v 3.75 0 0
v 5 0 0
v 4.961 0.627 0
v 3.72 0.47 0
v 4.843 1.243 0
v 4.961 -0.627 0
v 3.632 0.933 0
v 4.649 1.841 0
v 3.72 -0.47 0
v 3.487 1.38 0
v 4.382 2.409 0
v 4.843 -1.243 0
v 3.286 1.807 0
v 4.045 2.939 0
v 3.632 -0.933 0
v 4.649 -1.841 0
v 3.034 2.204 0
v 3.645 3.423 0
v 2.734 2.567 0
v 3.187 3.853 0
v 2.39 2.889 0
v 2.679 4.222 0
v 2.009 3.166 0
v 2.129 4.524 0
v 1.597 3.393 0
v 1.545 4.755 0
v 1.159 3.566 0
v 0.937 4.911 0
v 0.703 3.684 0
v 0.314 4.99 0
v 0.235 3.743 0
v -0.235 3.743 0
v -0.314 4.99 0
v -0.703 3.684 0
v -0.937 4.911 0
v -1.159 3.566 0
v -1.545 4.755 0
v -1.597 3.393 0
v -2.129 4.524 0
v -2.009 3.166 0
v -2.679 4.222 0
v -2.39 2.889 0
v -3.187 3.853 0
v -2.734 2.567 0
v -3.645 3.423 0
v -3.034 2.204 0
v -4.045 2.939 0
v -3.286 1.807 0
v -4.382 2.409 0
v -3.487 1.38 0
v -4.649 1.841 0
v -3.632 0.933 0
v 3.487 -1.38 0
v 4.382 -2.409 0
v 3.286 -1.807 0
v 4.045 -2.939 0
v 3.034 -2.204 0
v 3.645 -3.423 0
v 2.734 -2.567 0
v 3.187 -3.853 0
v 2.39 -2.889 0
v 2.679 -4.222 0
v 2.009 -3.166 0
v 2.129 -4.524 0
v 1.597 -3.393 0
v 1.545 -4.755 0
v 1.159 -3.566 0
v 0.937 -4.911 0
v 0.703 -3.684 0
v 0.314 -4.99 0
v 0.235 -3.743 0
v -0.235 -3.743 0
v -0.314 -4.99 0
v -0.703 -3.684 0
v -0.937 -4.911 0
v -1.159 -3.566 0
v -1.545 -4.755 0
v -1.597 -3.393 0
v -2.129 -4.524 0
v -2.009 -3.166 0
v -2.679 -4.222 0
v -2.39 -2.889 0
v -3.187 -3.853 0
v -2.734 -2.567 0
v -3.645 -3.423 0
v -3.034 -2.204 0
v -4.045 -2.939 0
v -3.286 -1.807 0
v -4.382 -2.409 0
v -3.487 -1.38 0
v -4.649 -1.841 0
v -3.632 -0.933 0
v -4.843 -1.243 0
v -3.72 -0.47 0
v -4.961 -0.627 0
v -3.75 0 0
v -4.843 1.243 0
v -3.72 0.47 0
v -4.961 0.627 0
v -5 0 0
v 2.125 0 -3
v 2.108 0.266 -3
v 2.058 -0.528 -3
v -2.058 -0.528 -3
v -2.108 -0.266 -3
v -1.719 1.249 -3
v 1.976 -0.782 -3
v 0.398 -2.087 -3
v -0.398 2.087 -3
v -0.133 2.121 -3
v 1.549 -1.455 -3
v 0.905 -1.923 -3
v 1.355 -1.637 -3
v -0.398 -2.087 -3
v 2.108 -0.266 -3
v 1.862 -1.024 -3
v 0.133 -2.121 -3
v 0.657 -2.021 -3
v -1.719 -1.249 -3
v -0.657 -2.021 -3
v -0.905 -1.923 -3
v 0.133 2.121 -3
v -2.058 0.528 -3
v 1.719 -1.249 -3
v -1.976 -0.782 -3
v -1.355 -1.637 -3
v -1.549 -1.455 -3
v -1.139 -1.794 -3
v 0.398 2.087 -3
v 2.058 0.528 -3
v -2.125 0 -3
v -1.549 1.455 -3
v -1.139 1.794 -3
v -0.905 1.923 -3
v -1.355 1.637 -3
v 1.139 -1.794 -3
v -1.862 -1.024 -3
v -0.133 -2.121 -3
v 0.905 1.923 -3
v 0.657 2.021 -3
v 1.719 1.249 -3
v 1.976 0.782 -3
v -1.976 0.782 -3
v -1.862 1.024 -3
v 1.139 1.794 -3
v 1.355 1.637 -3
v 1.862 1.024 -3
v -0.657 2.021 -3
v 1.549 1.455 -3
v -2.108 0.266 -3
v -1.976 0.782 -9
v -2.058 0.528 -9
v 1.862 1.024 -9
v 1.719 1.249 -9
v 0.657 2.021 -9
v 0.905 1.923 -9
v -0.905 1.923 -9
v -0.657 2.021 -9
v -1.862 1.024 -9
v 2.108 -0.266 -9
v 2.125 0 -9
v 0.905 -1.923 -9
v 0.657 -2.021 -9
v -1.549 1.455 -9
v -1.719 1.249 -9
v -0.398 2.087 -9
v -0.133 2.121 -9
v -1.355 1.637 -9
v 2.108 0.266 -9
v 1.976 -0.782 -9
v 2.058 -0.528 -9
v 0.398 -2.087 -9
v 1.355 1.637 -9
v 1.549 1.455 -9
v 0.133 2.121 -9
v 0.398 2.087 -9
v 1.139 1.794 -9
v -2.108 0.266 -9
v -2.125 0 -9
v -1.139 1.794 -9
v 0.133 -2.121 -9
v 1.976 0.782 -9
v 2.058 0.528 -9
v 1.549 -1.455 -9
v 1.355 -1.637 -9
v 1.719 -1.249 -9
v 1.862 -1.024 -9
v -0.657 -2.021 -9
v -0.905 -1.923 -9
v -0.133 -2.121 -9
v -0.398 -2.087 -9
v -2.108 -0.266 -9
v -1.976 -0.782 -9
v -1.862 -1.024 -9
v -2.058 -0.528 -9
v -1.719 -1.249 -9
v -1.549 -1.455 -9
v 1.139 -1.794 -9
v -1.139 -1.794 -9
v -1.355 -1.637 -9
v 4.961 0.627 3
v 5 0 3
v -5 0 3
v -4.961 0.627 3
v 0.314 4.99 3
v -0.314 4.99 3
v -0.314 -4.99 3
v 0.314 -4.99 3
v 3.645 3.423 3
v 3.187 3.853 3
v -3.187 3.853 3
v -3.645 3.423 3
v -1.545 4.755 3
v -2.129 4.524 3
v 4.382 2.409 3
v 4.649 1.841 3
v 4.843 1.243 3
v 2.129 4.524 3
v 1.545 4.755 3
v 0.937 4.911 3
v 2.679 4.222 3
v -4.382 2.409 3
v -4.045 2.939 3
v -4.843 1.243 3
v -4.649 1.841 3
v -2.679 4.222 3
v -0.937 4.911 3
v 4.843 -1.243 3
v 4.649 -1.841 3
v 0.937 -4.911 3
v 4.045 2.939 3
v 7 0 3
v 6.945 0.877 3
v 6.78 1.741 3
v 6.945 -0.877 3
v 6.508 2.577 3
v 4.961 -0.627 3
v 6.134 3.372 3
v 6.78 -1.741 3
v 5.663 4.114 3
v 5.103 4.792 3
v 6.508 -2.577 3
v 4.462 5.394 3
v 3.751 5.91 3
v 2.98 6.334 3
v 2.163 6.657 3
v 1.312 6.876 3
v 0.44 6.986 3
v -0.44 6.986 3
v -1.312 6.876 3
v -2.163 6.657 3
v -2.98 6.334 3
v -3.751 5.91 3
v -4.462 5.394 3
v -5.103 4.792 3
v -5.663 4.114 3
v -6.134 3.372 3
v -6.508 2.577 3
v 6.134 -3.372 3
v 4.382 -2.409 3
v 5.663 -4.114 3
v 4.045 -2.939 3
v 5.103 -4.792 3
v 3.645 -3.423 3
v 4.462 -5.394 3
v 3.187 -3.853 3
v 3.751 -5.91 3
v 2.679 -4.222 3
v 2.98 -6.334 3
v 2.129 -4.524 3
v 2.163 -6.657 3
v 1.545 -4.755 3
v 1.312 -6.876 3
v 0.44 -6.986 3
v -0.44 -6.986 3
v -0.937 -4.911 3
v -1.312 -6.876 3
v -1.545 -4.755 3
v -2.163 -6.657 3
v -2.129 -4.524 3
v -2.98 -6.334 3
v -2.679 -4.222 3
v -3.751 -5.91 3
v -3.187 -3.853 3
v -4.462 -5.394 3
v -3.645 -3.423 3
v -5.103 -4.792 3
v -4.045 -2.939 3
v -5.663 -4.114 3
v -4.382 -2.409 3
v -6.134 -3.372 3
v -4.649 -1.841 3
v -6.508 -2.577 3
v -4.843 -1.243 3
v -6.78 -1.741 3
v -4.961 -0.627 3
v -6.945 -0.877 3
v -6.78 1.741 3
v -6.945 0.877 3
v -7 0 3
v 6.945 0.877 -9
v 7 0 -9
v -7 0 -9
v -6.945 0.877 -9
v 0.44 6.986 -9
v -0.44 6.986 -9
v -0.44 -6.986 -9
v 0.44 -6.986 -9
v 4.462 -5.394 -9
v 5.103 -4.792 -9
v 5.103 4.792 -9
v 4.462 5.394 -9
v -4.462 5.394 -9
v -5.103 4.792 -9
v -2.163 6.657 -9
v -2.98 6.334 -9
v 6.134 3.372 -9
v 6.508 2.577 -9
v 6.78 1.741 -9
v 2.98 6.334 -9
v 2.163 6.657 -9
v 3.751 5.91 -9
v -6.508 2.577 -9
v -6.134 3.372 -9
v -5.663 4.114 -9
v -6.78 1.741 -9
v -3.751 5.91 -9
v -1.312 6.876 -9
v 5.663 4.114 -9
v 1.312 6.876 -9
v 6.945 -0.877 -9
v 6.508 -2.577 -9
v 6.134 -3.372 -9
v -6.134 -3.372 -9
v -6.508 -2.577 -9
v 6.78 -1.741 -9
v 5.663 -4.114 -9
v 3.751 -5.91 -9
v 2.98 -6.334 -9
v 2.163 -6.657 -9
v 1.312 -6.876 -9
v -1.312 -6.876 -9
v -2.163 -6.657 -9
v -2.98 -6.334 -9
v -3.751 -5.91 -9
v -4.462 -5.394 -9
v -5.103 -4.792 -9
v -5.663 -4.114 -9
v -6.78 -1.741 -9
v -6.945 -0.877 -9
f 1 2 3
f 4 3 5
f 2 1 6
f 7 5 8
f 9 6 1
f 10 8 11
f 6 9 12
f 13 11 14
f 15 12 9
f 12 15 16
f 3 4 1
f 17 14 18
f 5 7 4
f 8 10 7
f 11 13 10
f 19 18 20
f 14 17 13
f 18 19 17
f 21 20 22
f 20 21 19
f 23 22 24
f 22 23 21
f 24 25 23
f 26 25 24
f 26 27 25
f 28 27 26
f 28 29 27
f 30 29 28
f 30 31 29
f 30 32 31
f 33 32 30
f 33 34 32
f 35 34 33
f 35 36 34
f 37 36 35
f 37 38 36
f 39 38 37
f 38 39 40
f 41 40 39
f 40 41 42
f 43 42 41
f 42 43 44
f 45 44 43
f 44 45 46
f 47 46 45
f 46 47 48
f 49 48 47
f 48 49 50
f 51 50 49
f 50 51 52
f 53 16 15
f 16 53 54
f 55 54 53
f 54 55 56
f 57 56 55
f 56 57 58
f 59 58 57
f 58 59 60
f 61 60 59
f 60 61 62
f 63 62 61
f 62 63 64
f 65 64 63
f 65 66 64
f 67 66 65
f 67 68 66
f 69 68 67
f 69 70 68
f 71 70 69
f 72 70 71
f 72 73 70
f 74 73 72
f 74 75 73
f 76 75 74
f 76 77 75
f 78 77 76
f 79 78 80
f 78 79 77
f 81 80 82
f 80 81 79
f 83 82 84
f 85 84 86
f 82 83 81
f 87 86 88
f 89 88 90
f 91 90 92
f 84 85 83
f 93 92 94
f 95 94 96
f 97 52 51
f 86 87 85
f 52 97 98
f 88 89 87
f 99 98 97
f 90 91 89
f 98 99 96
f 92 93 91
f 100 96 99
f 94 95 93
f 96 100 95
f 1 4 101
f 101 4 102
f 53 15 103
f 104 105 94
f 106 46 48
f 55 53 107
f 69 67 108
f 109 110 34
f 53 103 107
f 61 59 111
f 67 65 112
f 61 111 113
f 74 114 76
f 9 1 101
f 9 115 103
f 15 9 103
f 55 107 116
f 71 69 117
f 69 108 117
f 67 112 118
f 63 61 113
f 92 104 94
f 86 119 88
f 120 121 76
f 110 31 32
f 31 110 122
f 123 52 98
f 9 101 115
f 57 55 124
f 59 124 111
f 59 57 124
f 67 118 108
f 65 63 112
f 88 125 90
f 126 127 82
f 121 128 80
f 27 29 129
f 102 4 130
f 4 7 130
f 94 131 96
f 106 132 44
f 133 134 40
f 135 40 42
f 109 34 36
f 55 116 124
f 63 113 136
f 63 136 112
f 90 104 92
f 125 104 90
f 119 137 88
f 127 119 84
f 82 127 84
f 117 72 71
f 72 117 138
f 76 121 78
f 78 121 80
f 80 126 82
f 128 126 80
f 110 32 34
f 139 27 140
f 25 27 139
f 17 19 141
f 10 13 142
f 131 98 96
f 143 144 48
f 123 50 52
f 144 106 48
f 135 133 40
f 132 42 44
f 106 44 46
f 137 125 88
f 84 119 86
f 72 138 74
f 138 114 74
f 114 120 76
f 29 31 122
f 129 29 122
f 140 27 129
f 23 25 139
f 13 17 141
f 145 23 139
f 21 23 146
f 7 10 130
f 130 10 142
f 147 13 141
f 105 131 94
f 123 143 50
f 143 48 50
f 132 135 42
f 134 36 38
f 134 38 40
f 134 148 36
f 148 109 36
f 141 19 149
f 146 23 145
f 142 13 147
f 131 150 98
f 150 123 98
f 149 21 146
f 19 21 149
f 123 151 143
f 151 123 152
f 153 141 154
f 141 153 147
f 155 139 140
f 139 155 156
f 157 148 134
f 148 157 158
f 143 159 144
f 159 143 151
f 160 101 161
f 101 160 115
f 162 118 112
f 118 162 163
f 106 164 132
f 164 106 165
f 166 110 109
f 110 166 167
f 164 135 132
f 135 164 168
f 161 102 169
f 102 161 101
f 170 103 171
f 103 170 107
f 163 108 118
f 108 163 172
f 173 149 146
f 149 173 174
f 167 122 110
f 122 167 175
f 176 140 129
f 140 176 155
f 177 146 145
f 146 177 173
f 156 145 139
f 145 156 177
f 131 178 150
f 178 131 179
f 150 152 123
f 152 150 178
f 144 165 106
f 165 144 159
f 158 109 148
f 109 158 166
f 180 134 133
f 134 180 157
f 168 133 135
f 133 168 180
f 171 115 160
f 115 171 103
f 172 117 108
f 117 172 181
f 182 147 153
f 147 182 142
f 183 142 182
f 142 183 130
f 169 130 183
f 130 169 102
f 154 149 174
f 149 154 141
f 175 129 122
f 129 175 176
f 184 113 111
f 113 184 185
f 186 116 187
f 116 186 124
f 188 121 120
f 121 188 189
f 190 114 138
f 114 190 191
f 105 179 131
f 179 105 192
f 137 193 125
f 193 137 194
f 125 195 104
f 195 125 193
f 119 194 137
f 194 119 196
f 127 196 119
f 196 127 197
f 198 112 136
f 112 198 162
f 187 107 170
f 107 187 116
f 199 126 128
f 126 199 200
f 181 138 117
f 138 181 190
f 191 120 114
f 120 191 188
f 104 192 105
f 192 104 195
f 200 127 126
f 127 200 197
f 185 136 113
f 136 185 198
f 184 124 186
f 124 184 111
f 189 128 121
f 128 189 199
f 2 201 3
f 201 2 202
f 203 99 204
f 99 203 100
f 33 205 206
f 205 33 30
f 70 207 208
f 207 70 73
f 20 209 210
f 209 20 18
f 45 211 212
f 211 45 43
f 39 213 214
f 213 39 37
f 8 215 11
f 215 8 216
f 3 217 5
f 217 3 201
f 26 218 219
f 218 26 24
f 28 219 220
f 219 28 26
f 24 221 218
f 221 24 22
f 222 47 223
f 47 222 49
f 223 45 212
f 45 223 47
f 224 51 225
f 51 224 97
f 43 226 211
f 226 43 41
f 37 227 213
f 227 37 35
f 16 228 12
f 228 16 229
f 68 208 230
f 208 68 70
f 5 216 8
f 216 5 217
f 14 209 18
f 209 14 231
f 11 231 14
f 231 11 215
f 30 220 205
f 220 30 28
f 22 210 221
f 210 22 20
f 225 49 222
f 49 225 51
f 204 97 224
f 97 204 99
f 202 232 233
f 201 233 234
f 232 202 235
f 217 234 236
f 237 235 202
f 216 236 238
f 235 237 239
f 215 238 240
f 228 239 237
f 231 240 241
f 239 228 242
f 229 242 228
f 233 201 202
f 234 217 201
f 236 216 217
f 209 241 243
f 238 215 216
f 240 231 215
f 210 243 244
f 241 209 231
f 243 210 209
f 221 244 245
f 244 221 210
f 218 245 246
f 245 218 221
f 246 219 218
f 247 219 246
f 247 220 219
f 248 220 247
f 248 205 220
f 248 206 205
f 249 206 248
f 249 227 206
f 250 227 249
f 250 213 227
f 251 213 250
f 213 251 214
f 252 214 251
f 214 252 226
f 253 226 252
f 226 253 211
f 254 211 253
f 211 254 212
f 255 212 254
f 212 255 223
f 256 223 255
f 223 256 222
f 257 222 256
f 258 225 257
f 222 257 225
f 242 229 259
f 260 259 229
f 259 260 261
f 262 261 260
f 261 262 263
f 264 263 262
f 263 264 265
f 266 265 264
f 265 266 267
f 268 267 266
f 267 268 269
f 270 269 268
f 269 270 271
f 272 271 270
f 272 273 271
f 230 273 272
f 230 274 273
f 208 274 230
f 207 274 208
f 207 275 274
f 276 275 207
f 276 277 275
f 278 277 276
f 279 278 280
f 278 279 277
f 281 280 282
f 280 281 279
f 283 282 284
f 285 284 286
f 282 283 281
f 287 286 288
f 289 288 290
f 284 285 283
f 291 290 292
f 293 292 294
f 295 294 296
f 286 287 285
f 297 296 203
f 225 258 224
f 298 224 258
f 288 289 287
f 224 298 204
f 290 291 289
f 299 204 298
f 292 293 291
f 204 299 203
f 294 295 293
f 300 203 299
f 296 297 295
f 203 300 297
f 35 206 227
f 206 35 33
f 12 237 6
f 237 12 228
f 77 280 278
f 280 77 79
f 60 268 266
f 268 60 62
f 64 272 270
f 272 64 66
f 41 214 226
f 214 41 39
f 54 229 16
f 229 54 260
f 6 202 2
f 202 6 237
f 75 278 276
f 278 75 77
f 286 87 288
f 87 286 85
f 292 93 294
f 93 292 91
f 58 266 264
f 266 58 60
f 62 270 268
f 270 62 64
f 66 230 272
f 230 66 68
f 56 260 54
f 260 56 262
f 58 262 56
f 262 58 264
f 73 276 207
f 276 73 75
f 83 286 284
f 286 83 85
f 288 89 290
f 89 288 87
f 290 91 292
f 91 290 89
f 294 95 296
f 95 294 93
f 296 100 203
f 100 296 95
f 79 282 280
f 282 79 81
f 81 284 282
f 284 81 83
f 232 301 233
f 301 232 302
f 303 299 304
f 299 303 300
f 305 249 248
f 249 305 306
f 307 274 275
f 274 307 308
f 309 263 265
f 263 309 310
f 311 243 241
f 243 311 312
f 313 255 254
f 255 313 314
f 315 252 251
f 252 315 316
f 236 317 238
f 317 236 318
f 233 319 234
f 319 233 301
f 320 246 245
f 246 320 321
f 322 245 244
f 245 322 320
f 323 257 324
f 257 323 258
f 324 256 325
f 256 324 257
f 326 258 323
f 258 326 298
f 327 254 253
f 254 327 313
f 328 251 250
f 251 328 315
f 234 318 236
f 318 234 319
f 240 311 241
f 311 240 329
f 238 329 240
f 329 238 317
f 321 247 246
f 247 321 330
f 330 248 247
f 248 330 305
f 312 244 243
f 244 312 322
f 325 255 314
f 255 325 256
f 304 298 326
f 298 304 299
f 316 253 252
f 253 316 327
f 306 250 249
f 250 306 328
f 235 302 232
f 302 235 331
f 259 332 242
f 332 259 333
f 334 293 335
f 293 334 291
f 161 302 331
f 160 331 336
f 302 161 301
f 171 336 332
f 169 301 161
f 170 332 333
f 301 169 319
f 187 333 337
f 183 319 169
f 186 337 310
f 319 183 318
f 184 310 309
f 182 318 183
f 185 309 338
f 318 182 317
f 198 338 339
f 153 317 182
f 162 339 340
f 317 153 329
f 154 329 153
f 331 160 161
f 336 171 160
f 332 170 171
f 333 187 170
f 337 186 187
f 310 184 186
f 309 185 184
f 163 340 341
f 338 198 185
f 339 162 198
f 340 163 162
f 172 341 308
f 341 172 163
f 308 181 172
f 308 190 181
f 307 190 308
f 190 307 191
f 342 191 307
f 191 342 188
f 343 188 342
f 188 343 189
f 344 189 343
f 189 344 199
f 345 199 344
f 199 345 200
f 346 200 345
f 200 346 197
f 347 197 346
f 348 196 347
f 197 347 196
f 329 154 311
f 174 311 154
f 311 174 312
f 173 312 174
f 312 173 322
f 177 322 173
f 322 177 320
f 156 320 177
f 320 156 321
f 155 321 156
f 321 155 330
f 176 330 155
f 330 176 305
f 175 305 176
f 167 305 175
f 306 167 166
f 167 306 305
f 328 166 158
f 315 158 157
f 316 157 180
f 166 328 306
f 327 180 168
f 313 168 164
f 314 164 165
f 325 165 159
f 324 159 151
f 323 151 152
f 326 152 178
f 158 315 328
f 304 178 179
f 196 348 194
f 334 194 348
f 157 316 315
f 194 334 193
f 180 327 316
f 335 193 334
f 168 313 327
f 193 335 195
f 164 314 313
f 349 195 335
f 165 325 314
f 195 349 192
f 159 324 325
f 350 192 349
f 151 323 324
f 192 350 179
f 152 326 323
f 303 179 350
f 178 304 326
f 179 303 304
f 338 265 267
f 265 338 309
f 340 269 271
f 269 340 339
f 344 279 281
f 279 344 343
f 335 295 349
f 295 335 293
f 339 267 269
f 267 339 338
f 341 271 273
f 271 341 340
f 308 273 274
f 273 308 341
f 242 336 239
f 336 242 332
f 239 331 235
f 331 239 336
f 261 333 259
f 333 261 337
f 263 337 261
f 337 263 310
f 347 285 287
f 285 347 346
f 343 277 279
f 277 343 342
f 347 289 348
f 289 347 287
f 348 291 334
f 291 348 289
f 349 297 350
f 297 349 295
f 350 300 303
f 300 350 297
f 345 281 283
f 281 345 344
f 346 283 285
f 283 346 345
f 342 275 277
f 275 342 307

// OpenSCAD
$fn = 50;

difference() {
	union() {
		translate(v = [0, 0, -9.0]) {
			cylinder(h = 12, r = 7.0);
		}
	}
	union() {
		translate(v = [0, 0, 0]) {
			rotate(a = [0, 0, 0]) {
				difference() {
					union() {
						translate(v = [0, 0, -12.0]) {
							cylinder(h = 12, r = 2.0);
						}
						translate(v = [0, 0, -3]) {
							cylinder(h = 3, r1 = 2.125, r2 = 3.75);
						}
						translate(v = [0, 0, -12.0]) {
							cylinder(h = 12, r = 2.125);
						}
						translate(v = [0, 0, -12.0]) {
							cylinder(h = 12, r = 2.0);
						}
					}
					union();
				}
			}
		}
		#cylinder(h = 3, r = 5.0);
	}
}
